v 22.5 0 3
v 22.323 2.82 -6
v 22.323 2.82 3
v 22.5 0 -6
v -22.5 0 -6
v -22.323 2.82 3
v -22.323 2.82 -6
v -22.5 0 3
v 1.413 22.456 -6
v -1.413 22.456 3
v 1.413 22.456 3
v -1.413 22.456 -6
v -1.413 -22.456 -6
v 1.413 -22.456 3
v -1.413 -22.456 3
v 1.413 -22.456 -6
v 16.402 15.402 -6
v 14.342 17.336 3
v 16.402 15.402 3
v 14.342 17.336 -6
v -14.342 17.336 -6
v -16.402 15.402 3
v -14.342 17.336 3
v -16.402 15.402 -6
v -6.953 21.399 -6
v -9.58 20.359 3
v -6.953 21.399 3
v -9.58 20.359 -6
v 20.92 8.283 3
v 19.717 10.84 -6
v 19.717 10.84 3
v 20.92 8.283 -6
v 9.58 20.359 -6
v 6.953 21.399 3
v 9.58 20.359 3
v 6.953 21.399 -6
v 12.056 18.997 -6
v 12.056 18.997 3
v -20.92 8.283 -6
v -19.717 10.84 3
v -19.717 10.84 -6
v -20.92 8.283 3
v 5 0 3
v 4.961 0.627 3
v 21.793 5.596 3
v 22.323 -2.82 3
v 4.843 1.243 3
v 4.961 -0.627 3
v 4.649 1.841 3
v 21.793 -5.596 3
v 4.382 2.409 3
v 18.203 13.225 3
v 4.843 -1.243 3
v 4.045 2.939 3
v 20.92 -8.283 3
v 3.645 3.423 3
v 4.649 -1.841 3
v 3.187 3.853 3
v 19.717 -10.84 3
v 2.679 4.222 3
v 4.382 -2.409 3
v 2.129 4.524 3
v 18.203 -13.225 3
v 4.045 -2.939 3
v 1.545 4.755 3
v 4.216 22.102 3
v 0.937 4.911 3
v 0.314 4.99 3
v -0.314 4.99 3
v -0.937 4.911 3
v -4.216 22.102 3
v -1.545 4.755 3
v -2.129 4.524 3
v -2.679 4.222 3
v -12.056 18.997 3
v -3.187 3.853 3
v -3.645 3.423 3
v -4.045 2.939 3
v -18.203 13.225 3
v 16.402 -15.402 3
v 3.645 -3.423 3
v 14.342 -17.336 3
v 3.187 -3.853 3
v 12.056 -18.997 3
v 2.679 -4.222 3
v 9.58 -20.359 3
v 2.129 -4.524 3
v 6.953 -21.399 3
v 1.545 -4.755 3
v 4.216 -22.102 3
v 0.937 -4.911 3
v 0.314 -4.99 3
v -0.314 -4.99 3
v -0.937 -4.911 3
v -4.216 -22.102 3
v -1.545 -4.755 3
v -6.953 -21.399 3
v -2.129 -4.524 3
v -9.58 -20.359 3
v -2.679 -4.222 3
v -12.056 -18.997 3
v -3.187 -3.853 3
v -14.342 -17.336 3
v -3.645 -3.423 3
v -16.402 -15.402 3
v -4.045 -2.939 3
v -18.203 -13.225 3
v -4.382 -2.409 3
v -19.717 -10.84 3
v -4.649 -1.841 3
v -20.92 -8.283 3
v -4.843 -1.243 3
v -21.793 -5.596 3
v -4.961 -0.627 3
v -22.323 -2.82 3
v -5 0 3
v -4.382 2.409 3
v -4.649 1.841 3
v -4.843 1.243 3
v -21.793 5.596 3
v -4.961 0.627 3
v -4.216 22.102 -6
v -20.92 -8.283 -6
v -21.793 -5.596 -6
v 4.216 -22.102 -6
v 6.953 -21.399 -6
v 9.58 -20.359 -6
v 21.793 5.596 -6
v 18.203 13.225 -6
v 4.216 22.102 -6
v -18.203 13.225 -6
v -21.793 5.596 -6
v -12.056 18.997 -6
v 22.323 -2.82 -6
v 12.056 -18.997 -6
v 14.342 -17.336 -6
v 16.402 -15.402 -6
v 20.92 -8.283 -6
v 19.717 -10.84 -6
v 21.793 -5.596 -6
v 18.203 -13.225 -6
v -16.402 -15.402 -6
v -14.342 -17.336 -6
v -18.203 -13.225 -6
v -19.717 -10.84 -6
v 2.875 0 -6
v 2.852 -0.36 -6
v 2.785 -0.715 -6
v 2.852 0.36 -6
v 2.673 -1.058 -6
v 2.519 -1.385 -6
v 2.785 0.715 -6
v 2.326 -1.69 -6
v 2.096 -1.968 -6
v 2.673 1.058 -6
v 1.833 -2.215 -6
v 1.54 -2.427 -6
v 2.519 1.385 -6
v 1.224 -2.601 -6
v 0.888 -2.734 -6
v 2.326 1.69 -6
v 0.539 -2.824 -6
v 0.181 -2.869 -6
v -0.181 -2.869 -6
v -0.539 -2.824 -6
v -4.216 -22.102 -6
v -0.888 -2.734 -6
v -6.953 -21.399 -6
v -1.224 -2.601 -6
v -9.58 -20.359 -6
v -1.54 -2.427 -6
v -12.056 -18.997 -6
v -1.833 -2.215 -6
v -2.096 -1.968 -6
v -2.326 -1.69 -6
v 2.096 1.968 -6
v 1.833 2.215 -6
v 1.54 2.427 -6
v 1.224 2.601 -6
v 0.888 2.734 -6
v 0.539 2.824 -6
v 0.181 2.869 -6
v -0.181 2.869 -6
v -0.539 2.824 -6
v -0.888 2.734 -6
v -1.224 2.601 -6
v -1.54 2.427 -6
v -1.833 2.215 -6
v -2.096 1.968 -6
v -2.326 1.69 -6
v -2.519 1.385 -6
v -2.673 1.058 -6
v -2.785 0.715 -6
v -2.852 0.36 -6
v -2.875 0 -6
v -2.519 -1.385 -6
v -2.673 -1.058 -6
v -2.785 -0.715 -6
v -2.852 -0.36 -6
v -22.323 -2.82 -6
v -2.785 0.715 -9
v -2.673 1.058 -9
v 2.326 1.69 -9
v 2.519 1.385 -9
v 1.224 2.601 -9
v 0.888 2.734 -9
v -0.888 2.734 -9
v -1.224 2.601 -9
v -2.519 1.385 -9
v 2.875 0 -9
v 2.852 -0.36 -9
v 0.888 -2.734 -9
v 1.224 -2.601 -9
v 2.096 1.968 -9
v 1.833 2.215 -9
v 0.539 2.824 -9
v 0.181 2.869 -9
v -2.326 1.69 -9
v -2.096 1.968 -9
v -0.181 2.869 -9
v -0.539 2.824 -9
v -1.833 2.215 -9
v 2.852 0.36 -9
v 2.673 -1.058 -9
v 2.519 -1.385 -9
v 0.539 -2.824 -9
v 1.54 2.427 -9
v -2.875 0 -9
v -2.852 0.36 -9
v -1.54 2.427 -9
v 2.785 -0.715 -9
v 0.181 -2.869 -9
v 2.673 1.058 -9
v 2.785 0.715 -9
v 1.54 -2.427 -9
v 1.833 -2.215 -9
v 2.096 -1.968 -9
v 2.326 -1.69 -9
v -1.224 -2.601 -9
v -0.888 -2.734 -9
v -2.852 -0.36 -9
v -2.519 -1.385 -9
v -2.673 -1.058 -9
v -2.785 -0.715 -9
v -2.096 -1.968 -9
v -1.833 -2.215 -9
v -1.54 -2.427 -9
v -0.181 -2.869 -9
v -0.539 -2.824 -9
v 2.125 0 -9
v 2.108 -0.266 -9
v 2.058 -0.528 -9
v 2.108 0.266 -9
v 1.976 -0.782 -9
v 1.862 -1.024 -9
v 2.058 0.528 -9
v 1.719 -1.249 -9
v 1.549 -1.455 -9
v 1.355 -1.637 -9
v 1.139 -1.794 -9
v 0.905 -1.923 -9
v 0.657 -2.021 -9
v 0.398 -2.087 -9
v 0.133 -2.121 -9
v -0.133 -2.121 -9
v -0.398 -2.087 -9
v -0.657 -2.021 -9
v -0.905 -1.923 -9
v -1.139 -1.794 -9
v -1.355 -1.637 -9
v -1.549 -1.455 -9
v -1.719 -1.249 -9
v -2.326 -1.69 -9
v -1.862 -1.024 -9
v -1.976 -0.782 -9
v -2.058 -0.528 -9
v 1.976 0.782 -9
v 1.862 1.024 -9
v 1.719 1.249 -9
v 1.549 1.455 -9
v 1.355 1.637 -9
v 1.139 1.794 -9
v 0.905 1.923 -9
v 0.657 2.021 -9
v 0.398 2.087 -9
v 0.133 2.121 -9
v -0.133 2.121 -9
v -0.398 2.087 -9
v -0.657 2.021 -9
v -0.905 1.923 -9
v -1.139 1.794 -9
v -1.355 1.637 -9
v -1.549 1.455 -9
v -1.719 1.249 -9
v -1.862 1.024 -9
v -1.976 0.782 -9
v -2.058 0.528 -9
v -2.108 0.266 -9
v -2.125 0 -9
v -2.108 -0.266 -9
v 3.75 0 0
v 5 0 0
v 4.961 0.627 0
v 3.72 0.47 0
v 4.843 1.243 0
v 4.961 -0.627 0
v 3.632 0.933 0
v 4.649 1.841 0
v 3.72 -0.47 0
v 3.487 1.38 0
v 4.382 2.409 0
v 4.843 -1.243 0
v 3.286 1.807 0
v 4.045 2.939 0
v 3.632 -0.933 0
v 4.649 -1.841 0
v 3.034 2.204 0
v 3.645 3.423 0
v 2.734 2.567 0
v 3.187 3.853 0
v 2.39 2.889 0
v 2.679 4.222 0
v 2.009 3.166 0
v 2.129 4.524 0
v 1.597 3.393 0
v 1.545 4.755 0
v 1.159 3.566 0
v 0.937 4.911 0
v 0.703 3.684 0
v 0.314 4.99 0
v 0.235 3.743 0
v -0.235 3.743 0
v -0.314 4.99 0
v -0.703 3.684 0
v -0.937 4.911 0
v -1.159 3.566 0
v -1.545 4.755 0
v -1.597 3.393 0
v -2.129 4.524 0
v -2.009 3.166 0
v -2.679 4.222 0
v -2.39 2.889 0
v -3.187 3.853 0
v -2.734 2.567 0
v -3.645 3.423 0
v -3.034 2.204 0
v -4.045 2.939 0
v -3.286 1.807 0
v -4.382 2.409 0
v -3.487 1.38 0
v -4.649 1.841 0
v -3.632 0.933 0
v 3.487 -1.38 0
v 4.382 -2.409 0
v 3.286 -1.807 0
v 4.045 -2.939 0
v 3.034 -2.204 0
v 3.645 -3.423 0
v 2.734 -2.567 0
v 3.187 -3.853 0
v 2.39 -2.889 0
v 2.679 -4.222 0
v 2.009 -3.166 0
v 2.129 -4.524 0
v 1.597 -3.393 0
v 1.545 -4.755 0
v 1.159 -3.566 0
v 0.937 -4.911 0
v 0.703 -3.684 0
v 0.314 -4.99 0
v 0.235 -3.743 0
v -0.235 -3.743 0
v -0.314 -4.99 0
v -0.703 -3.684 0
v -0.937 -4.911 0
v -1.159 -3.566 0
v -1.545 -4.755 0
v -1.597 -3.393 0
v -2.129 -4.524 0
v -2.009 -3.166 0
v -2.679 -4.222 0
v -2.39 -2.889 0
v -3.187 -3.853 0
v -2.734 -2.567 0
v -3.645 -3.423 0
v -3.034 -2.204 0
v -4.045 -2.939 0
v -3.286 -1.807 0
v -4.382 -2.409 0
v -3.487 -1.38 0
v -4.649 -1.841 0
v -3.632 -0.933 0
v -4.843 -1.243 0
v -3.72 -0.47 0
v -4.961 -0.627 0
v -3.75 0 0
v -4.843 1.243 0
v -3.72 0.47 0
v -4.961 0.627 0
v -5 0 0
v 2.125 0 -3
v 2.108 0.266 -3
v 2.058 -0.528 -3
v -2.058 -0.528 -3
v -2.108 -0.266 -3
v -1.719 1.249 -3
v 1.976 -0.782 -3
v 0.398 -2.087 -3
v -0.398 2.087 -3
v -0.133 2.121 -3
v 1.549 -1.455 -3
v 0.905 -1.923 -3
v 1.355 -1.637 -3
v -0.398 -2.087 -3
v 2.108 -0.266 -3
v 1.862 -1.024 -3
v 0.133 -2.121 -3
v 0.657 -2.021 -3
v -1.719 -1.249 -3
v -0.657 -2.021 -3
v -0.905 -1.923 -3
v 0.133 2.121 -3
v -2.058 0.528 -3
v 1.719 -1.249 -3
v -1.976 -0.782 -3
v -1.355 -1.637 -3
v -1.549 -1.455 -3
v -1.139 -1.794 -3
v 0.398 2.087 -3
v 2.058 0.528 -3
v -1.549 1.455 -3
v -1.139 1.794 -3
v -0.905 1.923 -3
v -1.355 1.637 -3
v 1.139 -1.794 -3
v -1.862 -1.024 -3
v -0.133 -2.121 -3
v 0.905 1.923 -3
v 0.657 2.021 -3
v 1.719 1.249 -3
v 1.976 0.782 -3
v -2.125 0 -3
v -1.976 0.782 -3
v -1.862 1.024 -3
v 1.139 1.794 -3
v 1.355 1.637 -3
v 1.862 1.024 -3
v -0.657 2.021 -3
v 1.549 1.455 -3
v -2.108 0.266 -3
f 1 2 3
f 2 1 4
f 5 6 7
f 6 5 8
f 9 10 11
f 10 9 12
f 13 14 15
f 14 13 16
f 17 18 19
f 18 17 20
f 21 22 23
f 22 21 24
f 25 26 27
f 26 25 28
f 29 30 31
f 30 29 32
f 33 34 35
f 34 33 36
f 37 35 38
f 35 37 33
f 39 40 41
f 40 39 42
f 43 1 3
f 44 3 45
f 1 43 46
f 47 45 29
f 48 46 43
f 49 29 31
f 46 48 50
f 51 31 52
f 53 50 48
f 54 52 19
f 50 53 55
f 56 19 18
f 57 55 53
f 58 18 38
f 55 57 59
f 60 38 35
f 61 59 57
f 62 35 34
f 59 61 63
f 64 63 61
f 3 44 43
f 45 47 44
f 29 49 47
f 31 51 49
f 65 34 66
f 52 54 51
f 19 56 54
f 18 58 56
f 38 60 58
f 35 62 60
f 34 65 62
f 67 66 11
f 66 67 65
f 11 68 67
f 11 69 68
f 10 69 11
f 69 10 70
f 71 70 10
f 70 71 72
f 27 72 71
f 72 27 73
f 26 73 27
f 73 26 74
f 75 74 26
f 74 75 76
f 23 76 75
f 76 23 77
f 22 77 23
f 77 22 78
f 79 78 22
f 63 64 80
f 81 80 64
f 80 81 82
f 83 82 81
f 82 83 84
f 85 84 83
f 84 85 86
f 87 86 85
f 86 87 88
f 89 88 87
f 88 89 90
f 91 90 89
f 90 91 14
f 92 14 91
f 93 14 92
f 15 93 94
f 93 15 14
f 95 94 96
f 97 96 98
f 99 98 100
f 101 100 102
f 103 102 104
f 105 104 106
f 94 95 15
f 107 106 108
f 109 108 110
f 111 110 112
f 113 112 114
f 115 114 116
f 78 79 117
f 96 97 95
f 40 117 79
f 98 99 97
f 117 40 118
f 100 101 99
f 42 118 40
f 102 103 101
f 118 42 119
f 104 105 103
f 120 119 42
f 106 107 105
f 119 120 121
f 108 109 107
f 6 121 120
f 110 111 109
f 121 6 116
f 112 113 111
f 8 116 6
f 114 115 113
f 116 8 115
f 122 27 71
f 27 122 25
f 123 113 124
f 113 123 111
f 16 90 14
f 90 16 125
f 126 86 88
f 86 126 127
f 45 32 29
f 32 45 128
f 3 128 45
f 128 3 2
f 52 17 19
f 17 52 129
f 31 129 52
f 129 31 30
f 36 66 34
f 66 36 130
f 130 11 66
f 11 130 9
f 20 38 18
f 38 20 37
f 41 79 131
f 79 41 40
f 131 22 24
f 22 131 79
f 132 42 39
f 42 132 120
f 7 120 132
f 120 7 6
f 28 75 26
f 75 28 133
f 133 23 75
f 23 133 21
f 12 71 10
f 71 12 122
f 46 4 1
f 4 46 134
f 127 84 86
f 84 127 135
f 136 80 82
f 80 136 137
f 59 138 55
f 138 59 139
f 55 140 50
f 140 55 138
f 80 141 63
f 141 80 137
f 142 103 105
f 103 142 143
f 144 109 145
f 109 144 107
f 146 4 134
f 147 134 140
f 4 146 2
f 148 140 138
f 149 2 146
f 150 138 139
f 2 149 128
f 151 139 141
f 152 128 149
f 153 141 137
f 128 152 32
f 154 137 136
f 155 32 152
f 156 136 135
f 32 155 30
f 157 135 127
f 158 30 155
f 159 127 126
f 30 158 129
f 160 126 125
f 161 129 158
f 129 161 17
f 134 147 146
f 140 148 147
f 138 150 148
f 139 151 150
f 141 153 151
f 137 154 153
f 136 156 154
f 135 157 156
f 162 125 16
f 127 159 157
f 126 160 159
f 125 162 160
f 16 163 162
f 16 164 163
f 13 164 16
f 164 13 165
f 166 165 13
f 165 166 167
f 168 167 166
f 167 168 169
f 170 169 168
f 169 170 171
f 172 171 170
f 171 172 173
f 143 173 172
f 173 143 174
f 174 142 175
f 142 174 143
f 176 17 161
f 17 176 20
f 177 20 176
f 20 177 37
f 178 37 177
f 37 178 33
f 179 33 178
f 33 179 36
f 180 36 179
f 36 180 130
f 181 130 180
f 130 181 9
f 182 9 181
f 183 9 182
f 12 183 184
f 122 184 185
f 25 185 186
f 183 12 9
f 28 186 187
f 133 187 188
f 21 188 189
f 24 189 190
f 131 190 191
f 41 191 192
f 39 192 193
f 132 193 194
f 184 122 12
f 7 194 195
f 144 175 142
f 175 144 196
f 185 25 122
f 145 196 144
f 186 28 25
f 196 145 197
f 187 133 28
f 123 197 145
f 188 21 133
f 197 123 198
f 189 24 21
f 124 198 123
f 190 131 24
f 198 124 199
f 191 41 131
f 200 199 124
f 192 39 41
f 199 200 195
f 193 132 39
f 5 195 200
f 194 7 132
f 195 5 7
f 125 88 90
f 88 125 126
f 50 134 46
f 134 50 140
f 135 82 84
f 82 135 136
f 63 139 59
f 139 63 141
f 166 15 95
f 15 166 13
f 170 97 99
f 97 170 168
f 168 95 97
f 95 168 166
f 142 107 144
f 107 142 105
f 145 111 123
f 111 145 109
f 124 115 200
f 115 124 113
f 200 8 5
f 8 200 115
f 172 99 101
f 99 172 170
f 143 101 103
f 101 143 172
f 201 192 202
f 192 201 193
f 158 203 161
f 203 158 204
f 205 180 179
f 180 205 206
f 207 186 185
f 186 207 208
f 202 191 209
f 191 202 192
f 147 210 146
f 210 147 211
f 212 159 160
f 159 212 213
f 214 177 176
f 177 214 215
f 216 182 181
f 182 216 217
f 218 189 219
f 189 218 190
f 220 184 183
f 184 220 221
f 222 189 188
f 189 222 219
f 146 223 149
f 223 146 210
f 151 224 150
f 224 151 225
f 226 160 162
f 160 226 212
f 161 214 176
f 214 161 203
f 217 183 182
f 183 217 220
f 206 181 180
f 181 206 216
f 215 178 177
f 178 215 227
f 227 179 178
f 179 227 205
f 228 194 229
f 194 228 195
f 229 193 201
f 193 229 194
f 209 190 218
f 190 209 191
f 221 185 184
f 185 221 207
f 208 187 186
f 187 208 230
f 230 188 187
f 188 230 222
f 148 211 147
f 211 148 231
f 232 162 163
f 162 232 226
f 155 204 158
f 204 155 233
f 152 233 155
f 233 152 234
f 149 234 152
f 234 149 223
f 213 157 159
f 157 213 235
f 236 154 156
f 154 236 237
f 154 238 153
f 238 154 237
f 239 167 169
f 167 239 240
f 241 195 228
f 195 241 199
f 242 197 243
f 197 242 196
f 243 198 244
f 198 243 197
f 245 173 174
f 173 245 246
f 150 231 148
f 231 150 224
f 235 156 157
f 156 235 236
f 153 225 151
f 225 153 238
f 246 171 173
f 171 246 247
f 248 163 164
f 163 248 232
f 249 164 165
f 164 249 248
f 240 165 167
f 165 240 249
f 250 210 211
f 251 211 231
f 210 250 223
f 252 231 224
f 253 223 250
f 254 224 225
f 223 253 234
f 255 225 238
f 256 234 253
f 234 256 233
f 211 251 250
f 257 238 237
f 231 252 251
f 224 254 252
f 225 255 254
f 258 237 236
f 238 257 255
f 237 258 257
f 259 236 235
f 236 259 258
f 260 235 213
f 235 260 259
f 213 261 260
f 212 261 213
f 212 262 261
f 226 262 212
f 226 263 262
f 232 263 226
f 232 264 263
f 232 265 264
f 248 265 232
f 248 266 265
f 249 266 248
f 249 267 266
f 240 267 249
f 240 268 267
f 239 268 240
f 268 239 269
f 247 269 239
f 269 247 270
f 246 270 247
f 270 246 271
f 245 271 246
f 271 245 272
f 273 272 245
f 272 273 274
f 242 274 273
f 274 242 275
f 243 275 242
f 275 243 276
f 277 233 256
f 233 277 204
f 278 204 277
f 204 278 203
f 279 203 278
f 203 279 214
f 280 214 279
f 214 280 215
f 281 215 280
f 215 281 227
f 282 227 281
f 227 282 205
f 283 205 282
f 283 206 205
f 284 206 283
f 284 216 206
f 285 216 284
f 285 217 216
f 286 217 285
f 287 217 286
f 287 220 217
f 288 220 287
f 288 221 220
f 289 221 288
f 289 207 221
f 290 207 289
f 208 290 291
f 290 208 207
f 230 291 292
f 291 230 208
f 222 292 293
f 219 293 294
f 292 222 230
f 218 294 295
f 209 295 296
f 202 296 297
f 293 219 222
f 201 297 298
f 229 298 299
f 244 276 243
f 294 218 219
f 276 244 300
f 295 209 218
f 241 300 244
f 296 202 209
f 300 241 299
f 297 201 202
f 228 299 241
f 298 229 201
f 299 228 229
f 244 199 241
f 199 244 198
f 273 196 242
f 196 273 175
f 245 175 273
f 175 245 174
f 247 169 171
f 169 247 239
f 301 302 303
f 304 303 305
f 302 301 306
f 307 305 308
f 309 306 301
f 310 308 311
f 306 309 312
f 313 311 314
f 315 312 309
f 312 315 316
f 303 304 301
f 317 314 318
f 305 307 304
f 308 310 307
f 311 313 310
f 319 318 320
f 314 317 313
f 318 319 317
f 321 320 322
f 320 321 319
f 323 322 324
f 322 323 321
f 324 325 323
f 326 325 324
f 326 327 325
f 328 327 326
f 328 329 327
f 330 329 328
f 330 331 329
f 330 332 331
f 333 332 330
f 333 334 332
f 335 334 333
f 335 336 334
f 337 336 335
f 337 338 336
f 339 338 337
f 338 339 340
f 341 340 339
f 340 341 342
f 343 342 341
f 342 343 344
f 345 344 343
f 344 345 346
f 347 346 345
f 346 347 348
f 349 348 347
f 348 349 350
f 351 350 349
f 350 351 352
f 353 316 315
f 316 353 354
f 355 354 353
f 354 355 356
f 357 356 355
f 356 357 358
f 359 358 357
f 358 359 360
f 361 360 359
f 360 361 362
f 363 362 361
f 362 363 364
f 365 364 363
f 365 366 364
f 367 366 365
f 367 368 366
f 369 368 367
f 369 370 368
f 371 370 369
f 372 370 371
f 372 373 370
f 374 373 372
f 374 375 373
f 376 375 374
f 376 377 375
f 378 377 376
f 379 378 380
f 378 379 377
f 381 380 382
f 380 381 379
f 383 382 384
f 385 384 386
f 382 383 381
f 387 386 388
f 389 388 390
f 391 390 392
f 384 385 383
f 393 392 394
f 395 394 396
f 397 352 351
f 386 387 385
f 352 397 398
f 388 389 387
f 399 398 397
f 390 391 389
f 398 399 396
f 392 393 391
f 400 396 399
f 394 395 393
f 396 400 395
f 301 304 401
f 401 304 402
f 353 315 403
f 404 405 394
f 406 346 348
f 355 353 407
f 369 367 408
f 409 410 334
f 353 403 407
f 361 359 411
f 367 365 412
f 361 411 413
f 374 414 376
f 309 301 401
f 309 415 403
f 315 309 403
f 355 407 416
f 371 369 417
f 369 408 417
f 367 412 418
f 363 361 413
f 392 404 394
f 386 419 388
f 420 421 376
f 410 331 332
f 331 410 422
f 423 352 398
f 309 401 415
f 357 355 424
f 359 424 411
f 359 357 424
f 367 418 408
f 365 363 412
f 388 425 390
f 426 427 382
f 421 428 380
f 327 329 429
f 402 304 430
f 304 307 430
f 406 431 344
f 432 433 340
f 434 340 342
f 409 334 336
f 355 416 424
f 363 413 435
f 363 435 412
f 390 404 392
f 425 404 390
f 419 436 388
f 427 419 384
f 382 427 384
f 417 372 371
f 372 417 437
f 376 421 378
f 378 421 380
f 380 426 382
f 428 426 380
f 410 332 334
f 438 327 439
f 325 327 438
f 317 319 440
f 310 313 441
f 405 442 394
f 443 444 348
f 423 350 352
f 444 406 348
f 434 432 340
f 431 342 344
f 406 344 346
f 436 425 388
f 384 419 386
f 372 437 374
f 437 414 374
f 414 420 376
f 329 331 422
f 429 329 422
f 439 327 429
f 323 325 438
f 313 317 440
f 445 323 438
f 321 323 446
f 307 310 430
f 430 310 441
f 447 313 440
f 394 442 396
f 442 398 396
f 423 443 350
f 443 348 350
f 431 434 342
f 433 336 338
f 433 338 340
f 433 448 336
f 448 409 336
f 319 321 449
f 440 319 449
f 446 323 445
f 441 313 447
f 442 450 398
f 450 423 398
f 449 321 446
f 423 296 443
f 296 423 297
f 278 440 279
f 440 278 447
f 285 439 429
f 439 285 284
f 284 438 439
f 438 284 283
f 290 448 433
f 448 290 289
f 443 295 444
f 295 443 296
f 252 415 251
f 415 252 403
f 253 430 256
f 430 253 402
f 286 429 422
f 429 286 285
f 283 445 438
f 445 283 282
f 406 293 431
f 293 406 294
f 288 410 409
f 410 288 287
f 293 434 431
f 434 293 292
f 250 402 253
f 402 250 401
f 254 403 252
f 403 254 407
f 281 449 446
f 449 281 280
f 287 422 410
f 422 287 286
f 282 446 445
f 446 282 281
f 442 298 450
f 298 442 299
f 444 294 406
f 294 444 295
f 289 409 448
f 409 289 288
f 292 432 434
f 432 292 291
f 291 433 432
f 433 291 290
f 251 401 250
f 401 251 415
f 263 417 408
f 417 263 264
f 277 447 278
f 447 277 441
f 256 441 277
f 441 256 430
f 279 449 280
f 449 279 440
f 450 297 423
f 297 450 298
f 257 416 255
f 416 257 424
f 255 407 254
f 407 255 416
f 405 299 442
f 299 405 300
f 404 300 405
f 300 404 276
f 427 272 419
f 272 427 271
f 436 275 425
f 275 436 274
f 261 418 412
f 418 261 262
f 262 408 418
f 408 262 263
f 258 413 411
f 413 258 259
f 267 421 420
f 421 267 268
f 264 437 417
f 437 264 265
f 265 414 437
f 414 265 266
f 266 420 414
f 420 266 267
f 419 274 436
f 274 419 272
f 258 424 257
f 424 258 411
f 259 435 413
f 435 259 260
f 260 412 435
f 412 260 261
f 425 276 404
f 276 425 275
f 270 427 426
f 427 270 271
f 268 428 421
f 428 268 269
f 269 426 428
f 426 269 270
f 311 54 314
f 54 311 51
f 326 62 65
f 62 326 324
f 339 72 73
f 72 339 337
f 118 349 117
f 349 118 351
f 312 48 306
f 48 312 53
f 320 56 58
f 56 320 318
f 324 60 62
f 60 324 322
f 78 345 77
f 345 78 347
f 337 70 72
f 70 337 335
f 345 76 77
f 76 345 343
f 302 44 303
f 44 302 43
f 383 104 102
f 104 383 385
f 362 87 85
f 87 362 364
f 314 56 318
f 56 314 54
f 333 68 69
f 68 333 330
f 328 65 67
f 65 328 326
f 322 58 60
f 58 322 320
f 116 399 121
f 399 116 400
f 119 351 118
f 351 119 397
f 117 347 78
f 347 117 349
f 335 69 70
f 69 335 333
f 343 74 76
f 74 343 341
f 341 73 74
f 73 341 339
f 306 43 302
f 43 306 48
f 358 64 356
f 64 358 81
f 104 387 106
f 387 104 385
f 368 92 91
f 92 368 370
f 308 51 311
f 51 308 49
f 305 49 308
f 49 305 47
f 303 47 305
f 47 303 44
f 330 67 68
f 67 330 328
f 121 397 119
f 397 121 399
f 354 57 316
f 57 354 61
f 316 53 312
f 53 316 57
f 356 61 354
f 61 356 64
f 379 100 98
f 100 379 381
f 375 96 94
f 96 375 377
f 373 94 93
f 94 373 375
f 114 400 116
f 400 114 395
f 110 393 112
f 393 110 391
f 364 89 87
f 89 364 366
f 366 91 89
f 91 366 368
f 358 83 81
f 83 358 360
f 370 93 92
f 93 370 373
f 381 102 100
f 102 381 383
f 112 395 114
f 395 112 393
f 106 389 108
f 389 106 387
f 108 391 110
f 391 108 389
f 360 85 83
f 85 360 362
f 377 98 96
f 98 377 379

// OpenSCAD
$fn = 50;

difference() {
	union() {
		translate(v = [0, 0, -6.0]) {
			cylinder(h = 9, r = 22.5);
		}
		#translate(v = [0, 0, -9.0]) {
			cylinder(h = 9, r = 2.875);
		}
	}
	union() {
		translate(v = [0, 0, 0]) {
			rotate(a = [0, 0, 0]) {
				difference() {
					union() {
						translate(v = [0, 0, -9.0]) {
							cylinder(h = 9, r = 2.0);
						}
						translate(v = [0, 0, -3]) {
							cylinder(h = 3, r1 = 2.125, r2 = 3.75);
						}
						translate(v = [0, 0, -9.0]) {
							cylinder(h = 9, r = 2.125);
						}
						translate(v = [0, 0, -9.0]) {
							cylinder(h = 9, r = 2.0);
						}
					}
					union();
				}
			}
		}
		#cylinder(h = 3, r = 5.0);
	}
}
